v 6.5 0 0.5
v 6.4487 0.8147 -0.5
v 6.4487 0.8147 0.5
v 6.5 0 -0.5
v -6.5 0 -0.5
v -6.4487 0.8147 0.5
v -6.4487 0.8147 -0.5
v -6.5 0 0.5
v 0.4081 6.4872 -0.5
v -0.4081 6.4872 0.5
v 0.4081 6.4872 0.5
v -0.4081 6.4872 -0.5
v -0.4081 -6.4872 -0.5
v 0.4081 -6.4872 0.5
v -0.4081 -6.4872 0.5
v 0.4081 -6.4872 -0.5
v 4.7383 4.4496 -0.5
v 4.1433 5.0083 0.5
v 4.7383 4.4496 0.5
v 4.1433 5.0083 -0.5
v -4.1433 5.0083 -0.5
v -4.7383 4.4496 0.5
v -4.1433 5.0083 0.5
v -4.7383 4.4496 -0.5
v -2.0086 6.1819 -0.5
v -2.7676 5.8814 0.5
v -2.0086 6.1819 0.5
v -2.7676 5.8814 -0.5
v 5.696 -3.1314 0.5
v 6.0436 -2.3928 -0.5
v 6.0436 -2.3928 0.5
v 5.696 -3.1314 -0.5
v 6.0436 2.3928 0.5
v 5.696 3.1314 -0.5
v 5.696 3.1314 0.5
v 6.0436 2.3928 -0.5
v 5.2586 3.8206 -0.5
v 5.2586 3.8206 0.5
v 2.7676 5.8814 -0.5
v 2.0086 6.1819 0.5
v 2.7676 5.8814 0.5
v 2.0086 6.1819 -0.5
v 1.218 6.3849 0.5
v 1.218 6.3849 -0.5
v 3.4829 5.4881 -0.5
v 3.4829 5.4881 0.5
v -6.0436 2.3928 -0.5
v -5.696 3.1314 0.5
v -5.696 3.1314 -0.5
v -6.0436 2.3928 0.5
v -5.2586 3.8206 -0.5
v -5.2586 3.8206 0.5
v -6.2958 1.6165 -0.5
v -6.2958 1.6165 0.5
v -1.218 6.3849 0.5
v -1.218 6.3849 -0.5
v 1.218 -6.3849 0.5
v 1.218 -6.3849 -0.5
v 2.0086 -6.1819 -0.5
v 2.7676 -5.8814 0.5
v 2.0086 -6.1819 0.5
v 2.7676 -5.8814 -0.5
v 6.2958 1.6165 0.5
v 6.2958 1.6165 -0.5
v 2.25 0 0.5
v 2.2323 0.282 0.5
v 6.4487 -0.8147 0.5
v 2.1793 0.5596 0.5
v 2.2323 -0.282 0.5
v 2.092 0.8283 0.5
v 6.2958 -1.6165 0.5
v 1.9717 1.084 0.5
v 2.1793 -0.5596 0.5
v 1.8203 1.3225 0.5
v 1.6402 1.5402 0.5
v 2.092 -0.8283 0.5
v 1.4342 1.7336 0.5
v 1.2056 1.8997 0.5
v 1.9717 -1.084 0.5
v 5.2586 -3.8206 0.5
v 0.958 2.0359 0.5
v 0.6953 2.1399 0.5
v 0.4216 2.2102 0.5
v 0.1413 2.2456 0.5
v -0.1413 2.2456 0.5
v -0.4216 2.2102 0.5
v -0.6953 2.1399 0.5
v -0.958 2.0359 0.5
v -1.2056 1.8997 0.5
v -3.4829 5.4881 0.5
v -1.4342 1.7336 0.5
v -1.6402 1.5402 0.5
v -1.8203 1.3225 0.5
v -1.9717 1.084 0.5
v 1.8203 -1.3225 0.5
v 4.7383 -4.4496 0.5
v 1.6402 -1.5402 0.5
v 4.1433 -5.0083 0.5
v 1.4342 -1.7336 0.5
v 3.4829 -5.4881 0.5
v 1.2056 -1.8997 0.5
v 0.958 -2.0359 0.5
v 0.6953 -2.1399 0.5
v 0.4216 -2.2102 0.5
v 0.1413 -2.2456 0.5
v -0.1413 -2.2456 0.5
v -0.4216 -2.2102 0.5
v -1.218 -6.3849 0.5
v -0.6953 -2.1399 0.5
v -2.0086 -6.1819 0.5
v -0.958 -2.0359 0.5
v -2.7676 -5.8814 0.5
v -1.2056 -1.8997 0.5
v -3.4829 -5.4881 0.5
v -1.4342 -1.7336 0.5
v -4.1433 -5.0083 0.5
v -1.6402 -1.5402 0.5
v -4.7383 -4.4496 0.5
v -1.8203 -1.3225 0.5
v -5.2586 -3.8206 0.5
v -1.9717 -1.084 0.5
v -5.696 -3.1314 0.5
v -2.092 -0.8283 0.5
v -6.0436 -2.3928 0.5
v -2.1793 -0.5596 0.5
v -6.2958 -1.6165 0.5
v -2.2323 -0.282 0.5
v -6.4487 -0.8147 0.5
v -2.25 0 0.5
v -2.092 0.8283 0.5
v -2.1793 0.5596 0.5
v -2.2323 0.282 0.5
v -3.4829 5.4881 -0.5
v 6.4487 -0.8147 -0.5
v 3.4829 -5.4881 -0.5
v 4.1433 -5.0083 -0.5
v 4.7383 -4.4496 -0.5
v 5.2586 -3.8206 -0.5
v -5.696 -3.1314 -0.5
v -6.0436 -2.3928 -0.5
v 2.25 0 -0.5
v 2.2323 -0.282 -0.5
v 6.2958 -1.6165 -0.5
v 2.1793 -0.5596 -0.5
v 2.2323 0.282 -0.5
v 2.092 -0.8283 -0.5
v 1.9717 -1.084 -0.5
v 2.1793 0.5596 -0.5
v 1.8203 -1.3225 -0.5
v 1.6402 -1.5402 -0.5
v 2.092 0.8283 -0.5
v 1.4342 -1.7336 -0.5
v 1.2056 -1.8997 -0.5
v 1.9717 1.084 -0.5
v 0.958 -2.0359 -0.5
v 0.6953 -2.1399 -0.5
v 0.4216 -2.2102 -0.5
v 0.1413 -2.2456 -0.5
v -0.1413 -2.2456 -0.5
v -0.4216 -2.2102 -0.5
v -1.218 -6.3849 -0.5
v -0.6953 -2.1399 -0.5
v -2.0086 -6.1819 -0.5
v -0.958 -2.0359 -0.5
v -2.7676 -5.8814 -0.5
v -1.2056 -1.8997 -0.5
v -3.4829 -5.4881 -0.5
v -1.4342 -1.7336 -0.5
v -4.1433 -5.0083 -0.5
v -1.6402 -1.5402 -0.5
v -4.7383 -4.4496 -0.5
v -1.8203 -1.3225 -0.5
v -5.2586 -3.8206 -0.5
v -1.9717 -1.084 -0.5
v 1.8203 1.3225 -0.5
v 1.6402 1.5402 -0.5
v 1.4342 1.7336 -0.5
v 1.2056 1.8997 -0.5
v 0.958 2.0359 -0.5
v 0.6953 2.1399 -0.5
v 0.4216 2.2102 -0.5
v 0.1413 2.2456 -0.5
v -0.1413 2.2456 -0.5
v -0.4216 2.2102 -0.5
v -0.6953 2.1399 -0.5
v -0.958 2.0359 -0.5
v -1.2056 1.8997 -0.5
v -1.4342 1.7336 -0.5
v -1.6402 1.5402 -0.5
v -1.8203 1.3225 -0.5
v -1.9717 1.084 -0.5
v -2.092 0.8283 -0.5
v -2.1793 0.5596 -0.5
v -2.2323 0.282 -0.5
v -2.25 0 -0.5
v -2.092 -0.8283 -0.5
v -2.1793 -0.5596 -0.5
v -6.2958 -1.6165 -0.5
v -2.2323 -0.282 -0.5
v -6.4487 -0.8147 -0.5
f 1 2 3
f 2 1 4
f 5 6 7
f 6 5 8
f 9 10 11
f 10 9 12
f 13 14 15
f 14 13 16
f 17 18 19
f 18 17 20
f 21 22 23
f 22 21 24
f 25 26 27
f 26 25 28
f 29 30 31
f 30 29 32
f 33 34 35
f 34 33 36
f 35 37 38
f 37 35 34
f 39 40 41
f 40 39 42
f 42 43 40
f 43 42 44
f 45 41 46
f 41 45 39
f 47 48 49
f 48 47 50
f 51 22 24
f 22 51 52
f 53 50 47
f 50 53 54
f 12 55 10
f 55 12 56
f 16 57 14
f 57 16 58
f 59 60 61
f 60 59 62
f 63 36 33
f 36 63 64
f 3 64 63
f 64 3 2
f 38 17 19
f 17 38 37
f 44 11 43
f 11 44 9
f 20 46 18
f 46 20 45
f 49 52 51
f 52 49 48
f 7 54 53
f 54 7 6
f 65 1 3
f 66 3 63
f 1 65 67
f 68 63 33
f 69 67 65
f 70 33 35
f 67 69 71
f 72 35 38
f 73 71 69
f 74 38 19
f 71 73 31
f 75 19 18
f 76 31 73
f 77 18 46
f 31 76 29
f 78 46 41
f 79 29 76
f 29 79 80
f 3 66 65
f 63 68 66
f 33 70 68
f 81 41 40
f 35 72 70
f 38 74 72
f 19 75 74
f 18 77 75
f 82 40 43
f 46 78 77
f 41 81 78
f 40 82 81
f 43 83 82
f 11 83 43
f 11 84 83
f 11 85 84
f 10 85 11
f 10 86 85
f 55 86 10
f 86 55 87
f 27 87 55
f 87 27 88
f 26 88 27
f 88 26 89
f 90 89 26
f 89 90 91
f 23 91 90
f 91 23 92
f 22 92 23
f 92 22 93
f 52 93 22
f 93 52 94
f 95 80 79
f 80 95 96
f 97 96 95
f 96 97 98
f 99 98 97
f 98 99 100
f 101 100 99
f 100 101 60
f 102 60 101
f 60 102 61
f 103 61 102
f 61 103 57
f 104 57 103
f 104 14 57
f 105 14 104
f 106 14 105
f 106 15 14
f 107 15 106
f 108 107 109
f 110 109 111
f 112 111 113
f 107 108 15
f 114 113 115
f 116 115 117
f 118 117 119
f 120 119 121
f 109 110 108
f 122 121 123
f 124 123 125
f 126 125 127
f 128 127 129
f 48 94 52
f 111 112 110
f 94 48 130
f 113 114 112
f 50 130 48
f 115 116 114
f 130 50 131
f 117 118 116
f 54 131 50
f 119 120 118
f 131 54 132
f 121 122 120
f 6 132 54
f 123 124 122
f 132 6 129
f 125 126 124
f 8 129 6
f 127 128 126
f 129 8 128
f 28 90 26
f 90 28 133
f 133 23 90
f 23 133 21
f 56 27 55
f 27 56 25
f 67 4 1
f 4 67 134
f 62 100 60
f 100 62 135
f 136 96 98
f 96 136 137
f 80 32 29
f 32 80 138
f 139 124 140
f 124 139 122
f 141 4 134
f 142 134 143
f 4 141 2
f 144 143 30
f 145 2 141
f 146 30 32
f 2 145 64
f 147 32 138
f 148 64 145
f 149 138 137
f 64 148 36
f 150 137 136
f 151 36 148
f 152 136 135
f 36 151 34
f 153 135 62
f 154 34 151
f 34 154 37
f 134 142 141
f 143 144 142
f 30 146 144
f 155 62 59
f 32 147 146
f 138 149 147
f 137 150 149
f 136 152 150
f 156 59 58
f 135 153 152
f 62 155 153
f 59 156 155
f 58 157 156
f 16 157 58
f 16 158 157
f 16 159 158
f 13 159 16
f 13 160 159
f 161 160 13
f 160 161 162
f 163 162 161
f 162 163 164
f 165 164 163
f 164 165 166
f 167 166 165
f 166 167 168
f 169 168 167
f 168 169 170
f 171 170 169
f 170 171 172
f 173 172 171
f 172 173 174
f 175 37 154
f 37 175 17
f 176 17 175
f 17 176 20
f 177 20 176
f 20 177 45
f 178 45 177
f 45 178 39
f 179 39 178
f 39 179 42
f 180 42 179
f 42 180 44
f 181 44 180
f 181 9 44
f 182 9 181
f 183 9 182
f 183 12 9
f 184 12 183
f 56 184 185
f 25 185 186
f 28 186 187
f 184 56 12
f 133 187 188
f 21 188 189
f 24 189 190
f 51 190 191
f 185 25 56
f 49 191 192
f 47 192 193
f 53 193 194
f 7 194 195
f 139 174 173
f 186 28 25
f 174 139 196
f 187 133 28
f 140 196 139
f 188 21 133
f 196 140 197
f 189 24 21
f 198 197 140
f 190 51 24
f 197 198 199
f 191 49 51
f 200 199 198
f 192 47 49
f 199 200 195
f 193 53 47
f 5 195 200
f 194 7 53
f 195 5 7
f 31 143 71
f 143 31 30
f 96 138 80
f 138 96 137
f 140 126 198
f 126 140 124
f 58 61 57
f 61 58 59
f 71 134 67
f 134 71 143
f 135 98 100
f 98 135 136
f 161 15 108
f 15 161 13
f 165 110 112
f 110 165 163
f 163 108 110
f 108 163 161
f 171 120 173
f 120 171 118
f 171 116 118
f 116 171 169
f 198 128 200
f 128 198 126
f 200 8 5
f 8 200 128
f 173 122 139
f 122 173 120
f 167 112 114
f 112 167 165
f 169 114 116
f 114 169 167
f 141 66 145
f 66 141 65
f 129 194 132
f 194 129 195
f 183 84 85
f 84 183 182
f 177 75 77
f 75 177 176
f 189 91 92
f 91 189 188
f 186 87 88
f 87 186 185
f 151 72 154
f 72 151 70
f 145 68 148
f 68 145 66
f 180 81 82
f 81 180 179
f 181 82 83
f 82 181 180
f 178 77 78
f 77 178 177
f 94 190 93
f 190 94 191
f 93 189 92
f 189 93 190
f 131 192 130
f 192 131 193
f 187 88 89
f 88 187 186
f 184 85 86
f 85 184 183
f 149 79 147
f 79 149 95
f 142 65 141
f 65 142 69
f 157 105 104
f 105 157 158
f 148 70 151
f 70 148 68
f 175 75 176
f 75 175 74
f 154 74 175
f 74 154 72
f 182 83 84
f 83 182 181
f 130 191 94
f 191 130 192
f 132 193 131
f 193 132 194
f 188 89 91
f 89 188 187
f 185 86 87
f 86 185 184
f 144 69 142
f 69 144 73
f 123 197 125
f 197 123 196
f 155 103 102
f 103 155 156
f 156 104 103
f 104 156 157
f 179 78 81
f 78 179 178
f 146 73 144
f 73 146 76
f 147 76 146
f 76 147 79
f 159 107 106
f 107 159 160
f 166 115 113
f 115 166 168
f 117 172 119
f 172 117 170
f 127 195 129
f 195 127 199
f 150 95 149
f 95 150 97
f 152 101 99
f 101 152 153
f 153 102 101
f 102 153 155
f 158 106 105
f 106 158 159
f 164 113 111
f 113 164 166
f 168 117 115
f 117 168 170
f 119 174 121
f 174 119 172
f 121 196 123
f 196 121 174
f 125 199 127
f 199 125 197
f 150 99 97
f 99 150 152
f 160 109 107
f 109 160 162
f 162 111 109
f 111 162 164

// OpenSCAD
$fn = 50;


difference() {
	union() {
		translate(v = [0, 0, -0.5000000000]) {
			cylinder(h = 1, r = 6.5000000000);
		}
	}
	union() {
		translate(v = [0, 0, -100.0000000000]) {
			cylinder(h = 200, r = 2.2500000000);
		}
	}
}
